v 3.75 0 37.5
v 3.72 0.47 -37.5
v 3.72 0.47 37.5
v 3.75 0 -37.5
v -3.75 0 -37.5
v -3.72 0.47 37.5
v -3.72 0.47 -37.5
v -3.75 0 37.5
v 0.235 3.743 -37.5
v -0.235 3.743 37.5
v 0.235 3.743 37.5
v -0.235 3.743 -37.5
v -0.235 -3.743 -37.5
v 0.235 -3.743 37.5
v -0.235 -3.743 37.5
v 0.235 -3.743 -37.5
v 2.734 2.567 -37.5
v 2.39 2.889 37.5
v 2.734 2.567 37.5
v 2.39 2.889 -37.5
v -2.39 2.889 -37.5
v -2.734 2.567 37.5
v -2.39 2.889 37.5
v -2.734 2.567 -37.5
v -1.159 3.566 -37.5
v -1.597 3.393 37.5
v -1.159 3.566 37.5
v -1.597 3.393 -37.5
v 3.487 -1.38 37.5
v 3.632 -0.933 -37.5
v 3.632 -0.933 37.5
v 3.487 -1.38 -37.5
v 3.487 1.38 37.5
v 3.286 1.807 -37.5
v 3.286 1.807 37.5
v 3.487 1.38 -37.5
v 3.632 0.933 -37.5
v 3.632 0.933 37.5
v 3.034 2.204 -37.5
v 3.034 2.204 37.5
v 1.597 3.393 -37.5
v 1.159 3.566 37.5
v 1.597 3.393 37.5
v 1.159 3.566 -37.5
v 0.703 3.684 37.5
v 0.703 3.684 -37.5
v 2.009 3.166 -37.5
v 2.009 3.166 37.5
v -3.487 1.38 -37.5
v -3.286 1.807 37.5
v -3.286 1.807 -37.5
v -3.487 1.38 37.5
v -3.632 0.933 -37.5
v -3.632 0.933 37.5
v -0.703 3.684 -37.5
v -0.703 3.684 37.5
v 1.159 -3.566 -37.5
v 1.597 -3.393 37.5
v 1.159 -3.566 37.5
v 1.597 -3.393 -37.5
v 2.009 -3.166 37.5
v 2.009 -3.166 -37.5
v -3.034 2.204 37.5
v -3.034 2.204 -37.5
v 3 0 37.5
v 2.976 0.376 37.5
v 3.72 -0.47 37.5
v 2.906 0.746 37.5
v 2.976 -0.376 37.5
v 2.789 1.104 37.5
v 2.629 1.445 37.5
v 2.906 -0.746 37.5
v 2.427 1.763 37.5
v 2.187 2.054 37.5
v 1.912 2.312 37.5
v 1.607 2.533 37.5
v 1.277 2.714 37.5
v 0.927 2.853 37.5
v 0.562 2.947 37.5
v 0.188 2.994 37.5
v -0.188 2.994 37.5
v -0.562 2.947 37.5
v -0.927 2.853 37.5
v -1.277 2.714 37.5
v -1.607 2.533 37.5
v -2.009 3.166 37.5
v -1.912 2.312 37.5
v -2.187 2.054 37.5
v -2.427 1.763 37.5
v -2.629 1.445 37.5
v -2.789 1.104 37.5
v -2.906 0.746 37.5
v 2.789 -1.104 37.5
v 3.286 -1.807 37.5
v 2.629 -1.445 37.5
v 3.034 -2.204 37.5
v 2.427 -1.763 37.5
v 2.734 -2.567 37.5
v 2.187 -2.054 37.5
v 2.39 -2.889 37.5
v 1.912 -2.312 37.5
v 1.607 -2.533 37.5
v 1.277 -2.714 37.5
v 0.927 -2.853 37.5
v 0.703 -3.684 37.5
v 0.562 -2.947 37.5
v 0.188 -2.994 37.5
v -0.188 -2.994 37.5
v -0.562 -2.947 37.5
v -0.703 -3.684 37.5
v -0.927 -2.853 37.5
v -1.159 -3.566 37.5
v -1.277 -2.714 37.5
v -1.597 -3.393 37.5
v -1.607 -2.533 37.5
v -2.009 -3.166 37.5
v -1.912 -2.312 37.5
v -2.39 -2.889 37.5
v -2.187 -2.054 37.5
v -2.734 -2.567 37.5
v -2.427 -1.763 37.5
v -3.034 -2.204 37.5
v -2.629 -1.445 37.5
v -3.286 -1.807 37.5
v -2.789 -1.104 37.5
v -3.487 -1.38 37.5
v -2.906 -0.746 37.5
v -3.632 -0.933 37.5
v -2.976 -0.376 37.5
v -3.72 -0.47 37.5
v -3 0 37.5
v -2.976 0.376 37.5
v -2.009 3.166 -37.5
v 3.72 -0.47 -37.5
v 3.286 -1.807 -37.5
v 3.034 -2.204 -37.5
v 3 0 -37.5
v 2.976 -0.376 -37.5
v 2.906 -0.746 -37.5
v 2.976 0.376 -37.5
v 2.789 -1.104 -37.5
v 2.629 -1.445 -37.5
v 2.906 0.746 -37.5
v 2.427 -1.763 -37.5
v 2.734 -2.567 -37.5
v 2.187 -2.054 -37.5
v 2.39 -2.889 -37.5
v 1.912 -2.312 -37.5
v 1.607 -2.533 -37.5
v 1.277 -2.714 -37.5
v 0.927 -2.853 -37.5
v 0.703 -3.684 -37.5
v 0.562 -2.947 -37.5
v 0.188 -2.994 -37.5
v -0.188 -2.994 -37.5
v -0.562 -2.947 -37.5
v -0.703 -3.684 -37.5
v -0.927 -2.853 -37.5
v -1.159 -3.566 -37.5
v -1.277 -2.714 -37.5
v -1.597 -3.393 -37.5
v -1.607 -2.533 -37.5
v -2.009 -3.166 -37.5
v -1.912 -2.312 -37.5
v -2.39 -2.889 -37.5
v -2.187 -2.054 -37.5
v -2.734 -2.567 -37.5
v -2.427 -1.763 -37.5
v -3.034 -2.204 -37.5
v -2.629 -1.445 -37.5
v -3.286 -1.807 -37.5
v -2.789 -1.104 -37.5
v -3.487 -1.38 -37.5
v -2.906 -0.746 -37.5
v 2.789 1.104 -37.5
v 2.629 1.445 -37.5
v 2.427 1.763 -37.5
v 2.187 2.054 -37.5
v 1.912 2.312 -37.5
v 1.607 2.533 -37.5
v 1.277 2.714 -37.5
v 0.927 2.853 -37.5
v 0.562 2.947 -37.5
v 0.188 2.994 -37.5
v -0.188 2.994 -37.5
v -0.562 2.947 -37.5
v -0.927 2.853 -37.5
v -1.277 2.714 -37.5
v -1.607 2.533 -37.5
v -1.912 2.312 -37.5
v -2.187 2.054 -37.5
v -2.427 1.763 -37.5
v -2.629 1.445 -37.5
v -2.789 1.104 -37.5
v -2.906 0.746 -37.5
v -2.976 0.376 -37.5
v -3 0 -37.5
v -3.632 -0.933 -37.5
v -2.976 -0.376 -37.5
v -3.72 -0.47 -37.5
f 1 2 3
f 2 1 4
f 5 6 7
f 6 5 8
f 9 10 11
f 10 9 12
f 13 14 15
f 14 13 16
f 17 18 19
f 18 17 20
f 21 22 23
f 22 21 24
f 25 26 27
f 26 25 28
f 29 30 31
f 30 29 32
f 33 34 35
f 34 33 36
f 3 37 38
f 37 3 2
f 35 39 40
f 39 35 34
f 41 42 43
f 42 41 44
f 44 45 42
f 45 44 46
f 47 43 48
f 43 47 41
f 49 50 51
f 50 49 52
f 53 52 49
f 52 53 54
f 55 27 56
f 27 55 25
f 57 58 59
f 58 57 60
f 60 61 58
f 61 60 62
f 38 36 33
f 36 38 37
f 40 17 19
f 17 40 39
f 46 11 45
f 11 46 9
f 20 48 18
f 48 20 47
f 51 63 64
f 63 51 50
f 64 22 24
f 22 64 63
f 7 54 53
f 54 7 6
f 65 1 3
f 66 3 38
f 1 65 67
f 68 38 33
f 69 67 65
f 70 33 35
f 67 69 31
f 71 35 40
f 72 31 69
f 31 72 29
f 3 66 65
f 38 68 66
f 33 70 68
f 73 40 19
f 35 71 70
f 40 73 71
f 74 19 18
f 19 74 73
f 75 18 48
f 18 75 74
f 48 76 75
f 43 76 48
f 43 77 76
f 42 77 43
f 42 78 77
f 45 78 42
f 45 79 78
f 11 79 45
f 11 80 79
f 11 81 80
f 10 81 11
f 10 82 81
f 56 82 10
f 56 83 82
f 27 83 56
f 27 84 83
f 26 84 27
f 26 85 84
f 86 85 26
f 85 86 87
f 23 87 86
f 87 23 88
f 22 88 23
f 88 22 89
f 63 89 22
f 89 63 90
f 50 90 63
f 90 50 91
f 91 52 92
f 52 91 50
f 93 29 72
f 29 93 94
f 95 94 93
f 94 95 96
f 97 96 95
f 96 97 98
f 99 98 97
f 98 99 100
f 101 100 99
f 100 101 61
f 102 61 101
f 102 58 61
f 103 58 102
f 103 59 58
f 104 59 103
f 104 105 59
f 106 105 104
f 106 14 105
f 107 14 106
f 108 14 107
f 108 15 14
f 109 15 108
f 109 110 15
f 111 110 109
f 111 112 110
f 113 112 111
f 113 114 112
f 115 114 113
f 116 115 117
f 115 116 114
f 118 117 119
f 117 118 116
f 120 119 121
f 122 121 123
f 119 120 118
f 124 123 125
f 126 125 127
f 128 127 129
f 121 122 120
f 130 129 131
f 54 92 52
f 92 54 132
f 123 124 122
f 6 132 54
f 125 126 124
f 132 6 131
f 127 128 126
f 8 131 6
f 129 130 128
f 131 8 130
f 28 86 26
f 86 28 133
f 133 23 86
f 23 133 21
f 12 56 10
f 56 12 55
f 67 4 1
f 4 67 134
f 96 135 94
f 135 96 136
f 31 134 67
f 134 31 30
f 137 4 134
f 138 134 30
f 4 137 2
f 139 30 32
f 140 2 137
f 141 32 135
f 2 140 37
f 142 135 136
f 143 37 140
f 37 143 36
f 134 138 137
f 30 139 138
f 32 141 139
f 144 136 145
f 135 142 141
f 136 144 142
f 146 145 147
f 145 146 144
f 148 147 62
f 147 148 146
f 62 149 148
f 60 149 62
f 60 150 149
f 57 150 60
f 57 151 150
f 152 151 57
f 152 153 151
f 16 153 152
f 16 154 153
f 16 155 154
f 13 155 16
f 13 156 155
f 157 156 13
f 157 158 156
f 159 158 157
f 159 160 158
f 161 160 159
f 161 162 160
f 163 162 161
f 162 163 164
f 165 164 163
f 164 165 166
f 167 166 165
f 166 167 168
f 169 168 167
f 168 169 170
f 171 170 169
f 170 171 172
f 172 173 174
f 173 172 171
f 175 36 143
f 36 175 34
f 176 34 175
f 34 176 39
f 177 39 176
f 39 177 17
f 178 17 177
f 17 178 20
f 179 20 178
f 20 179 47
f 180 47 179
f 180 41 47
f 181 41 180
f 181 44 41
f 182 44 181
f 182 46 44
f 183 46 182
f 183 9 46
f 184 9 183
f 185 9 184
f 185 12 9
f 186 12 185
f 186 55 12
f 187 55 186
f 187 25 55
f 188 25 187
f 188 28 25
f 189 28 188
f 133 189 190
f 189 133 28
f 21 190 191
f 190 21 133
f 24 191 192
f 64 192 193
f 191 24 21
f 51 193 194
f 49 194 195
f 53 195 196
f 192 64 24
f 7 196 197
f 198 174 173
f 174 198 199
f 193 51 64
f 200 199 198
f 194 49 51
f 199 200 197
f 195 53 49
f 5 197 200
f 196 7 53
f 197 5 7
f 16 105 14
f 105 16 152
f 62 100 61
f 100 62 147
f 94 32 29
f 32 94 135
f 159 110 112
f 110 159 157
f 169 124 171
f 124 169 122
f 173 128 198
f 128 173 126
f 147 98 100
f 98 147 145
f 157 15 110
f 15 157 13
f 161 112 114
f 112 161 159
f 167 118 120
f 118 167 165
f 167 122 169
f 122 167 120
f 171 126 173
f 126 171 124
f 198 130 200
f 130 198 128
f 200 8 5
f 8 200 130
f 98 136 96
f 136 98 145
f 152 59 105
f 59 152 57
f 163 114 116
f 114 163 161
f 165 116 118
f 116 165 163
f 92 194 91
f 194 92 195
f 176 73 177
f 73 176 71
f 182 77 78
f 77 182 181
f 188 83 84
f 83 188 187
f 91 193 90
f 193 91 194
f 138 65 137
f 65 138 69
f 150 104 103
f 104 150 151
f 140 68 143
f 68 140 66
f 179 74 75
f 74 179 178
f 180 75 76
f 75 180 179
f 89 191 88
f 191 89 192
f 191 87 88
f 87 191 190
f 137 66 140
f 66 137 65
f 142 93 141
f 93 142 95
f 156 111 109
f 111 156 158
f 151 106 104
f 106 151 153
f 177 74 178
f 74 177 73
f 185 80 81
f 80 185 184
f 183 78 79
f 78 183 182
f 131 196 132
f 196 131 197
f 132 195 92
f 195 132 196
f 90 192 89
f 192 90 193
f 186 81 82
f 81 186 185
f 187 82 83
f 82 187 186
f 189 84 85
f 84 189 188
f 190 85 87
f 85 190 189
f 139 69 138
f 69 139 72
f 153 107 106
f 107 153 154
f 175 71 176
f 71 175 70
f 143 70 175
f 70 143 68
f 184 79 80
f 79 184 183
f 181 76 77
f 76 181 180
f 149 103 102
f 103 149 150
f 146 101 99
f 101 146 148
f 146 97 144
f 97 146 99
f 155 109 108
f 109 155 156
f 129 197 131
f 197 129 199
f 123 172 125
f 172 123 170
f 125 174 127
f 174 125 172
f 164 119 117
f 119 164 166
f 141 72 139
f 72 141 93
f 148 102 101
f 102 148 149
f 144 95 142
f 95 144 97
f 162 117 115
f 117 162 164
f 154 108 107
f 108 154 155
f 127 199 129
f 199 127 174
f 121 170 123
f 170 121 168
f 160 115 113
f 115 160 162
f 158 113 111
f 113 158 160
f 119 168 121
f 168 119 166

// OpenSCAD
$fn = 50;


difference() {
	union() {
		translate(v = [0, 0, -37.5000000000]) {
			cylinder(h = 75, r = 3.7500000000);
		}
	}
	union() {
		translate(v = [0, 0, -100.0000000000]) {
			cylinder(h = 200, r = 3.0000000000);
		}
	}
}
